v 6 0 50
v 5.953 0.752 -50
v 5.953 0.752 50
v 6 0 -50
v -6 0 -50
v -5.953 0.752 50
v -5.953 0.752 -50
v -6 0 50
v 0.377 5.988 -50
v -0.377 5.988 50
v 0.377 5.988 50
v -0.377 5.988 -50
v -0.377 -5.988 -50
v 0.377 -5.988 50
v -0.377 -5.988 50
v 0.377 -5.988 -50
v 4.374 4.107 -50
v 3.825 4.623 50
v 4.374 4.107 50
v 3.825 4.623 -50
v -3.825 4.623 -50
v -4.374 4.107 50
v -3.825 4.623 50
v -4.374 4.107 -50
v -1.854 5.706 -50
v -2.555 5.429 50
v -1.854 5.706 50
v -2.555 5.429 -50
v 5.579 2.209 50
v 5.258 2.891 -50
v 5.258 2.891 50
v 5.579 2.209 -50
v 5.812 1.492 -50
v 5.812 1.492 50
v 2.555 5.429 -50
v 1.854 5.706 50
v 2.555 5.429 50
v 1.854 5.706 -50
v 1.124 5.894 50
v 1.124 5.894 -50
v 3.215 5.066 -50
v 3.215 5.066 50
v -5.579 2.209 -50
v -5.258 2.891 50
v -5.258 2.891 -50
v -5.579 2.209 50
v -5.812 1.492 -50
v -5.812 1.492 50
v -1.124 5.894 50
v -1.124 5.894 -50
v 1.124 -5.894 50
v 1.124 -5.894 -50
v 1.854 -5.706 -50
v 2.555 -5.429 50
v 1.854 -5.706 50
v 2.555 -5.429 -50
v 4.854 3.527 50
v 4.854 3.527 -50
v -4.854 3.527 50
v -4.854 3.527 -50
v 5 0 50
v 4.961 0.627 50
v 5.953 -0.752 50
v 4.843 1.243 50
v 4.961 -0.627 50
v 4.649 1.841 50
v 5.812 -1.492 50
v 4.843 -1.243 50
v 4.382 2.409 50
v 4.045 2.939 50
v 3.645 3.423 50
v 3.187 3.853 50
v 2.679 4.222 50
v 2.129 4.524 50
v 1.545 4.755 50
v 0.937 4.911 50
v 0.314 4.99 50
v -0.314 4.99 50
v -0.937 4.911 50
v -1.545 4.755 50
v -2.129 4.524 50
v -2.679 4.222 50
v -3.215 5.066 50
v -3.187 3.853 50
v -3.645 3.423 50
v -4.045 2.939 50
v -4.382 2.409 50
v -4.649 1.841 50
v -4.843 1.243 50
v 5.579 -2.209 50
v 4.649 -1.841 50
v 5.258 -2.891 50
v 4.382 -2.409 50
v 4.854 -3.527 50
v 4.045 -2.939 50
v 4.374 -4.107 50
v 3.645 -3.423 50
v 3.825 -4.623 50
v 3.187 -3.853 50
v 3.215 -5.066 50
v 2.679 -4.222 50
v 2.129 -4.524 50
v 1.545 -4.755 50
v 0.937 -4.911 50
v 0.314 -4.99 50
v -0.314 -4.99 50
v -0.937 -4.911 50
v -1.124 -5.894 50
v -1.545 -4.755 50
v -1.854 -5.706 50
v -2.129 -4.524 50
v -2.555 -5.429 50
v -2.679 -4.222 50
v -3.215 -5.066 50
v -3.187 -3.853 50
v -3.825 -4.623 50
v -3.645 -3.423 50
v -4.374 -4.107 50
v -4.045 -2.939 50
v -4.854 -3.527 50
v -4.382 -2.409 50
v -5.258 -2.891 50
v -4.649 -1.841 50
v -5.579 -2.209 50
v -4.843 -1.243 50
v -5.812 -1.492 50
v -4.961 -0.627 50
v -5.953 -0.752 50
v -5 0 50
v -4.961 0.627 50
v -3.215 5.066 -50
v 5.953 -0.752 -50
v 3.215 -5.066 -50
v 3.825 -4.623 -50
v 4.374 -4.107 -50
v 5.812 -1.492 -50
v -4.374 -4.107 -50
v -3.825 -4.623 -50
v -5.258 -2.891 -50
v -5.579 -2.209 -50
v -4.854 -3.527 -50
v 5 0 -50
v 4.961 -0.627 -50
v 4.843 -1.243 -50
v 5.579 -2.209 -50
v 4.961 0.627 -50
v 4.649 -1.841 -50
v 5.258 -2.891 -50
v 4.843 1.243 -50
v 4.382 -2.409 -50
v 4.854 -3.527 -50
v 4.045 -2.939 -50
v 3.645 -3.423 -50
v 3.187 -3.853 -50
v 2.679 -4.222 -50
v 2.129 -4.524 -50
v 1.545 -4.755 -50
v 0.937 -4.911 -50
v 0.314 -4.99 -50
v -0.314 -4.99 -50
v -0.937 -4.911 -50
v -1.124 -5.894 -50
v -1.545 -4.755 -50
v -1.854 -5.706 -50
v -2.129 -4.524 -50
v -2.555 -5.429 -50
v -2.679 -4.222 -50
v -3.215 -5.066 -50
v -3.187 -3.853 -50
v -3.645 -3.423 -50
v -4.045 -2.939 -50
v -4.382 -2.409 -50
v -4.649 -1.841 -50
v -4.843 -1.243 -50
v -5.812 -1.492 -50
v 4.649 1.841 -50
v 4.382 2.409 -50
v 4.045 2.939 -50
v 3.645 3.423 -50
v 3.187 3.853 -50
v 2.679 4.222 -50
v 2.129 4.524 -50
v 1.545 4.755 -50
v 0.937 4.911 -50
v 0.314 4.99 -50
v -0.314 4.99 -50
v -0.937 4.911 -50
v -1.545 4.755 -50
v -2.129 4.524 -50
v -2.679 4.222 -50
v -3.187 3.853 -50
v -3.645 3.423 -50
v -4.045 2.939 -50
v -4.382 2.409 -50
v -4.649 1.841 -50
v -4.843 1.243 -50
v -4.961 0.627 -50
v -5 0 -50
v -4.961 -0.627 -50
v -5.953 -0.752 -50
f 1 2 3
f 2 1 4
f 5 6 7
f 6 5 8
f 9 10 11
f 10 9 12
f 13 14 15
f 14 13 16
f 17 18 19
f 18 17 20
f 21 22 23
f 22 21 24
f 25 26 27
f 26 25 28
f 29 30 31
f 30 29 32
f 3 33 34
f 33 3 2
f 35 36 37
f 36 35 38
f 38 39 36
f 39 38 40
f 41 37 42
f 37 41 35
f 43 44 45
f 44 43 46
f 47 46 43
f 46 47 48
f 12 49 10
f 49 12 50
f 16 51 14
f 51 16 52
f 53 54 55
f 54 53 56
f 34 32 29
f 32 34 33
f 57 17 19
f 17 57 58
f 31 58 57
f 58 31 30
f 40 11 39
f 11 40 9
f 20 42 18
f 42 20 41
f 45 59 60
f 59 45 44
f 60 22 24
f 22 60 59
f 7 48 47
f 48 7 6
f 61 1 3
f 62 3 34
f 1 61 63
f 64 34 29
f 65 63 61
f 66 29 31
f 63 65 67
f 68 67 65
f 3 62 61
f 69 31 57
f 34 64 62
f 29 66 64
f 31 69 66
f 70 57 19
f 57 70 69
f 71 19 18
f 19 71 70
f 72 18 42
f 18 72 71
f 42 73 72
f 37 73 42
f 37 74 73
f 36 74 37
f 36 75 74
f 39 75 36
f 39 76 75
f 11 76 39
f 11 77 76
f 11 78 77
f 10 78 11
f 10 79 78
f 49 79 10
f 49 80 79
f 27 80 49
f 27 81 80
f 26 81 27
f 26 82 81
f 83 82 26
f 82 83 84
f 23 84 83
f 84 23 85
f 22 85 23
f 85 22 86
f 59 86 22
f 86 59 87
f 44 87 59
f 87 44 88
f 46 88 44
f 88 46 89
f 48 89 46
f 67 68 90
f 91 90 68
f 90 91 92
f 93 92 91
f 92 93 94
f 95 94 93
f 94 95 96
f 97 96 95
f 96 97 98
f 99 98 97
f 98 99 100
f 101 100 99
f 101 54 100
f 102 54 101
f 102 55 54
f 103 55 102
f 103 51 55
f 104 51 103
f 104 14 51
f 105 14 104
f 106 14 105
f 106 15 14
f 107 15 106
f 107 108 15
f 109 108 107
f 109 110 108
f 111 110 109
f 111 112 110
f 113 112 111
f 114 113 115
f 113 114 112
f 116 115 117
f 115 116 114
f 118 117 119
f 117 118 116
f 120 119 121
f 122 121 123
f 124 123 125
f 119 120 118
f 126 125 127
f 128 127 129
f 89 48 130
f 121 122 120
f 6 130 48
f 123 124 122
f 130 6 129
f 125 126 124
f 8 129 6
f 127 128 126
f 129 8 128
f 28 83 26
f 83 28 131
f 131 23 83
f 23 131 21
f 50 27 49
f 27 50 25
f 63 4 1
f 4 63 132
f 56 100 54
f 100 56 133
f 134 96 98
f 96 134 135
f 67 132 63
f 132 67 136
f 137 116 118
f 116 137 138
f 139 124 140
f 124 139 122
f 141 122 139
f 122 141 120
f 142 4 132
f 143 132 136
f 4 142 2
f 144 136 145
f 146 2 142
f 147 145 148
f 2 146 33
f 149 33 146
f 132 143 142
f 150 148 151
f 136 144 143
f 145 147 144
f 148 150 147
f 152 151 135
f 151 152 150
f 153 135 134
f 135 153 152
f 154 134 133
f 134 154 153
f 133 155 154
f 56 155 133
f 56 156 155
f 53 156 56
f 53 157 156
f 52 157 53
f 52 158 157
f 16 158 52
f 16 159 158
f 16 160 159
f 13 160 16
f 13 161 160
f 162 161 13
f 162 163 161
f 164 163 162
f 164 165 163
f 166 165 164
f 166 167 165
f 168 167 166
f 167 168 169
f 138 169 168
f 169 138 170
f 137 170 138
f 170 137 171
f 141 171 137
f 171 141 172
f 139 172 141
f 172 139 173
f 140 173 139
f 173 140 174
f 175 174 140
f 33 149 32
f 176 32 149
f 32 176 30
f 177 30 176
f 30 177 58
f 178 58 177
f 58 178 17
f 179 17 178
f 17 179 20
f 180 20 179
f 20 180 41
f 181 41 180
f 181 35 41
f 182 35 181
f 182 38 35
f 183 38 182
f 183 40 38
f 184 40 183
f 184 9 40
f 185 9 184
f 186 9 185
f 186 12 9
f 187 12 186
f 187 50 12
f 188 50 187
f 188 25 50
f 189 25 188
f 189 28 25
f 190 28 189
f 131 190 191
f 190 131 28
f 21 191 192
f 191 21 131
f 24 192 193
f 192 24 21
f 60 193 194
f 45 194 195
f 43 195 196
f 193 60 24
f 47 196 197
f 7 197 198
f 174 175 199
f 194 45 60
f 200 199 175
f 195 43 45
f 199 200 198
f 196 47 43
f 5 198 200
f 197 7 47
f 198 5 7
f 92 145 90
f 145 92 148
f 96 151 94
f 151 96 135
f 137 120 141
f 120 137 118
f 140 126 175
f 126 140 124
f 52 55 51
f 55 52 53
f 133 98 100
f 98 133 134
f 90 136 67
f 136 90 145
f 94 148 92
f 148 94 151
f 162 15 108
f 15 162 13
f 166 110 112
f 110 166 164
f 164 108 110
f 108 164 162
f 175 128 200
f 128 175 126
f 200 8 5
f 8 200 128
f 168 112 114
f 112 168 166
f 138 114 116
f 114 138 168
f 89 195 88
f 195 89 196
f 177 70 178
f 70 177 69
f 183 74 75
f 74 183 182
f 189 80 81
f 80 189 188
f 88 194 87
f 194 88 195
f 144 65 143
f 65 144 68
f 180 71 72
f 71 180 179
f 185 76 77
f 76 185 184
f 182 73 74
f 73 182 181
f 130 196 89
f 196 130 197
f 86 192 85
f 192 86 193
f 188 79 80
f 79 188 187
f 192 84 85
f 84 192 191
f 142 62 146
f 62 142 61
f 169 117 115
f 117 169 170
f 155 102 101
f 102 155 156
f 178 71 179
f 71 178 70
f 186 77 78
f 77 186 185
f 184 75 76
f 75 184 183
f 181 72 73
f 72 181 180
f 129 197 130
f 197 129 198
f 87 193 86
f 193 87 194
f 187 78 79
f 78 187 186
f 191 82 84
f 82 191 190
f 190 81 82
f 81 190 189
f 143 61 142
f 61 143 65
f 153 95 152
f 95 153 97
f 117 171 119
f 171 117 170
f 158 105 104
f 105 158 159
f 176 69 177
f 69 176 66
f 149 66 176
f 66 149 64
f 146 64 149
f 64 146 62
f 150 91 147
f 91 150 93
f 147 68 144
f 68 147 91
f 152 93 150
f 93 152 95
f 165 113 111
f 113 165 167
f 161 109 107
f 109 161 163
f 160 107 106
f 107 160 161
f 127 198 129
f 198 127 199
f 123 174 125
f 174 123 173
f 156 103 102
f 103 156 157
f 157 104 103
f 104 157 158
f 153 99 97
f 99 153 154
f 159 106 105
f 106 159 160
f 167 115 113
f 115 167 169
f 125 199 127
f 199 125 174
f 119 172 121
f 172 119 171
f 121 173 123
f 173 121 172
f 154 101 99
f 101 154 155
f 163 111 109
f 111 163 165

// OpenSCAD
$fn = 50;


difference() {
	union() {
		translate(v = [0, 0, -50.0000000000]) {
			cylinder(h = 100, r = 6.0000000000);
		}
	}
	union() {
		translate(v = [0, 0, -100.0000000000]) {
			cylinder(h = 200, r = 5);
		}
	}
}
